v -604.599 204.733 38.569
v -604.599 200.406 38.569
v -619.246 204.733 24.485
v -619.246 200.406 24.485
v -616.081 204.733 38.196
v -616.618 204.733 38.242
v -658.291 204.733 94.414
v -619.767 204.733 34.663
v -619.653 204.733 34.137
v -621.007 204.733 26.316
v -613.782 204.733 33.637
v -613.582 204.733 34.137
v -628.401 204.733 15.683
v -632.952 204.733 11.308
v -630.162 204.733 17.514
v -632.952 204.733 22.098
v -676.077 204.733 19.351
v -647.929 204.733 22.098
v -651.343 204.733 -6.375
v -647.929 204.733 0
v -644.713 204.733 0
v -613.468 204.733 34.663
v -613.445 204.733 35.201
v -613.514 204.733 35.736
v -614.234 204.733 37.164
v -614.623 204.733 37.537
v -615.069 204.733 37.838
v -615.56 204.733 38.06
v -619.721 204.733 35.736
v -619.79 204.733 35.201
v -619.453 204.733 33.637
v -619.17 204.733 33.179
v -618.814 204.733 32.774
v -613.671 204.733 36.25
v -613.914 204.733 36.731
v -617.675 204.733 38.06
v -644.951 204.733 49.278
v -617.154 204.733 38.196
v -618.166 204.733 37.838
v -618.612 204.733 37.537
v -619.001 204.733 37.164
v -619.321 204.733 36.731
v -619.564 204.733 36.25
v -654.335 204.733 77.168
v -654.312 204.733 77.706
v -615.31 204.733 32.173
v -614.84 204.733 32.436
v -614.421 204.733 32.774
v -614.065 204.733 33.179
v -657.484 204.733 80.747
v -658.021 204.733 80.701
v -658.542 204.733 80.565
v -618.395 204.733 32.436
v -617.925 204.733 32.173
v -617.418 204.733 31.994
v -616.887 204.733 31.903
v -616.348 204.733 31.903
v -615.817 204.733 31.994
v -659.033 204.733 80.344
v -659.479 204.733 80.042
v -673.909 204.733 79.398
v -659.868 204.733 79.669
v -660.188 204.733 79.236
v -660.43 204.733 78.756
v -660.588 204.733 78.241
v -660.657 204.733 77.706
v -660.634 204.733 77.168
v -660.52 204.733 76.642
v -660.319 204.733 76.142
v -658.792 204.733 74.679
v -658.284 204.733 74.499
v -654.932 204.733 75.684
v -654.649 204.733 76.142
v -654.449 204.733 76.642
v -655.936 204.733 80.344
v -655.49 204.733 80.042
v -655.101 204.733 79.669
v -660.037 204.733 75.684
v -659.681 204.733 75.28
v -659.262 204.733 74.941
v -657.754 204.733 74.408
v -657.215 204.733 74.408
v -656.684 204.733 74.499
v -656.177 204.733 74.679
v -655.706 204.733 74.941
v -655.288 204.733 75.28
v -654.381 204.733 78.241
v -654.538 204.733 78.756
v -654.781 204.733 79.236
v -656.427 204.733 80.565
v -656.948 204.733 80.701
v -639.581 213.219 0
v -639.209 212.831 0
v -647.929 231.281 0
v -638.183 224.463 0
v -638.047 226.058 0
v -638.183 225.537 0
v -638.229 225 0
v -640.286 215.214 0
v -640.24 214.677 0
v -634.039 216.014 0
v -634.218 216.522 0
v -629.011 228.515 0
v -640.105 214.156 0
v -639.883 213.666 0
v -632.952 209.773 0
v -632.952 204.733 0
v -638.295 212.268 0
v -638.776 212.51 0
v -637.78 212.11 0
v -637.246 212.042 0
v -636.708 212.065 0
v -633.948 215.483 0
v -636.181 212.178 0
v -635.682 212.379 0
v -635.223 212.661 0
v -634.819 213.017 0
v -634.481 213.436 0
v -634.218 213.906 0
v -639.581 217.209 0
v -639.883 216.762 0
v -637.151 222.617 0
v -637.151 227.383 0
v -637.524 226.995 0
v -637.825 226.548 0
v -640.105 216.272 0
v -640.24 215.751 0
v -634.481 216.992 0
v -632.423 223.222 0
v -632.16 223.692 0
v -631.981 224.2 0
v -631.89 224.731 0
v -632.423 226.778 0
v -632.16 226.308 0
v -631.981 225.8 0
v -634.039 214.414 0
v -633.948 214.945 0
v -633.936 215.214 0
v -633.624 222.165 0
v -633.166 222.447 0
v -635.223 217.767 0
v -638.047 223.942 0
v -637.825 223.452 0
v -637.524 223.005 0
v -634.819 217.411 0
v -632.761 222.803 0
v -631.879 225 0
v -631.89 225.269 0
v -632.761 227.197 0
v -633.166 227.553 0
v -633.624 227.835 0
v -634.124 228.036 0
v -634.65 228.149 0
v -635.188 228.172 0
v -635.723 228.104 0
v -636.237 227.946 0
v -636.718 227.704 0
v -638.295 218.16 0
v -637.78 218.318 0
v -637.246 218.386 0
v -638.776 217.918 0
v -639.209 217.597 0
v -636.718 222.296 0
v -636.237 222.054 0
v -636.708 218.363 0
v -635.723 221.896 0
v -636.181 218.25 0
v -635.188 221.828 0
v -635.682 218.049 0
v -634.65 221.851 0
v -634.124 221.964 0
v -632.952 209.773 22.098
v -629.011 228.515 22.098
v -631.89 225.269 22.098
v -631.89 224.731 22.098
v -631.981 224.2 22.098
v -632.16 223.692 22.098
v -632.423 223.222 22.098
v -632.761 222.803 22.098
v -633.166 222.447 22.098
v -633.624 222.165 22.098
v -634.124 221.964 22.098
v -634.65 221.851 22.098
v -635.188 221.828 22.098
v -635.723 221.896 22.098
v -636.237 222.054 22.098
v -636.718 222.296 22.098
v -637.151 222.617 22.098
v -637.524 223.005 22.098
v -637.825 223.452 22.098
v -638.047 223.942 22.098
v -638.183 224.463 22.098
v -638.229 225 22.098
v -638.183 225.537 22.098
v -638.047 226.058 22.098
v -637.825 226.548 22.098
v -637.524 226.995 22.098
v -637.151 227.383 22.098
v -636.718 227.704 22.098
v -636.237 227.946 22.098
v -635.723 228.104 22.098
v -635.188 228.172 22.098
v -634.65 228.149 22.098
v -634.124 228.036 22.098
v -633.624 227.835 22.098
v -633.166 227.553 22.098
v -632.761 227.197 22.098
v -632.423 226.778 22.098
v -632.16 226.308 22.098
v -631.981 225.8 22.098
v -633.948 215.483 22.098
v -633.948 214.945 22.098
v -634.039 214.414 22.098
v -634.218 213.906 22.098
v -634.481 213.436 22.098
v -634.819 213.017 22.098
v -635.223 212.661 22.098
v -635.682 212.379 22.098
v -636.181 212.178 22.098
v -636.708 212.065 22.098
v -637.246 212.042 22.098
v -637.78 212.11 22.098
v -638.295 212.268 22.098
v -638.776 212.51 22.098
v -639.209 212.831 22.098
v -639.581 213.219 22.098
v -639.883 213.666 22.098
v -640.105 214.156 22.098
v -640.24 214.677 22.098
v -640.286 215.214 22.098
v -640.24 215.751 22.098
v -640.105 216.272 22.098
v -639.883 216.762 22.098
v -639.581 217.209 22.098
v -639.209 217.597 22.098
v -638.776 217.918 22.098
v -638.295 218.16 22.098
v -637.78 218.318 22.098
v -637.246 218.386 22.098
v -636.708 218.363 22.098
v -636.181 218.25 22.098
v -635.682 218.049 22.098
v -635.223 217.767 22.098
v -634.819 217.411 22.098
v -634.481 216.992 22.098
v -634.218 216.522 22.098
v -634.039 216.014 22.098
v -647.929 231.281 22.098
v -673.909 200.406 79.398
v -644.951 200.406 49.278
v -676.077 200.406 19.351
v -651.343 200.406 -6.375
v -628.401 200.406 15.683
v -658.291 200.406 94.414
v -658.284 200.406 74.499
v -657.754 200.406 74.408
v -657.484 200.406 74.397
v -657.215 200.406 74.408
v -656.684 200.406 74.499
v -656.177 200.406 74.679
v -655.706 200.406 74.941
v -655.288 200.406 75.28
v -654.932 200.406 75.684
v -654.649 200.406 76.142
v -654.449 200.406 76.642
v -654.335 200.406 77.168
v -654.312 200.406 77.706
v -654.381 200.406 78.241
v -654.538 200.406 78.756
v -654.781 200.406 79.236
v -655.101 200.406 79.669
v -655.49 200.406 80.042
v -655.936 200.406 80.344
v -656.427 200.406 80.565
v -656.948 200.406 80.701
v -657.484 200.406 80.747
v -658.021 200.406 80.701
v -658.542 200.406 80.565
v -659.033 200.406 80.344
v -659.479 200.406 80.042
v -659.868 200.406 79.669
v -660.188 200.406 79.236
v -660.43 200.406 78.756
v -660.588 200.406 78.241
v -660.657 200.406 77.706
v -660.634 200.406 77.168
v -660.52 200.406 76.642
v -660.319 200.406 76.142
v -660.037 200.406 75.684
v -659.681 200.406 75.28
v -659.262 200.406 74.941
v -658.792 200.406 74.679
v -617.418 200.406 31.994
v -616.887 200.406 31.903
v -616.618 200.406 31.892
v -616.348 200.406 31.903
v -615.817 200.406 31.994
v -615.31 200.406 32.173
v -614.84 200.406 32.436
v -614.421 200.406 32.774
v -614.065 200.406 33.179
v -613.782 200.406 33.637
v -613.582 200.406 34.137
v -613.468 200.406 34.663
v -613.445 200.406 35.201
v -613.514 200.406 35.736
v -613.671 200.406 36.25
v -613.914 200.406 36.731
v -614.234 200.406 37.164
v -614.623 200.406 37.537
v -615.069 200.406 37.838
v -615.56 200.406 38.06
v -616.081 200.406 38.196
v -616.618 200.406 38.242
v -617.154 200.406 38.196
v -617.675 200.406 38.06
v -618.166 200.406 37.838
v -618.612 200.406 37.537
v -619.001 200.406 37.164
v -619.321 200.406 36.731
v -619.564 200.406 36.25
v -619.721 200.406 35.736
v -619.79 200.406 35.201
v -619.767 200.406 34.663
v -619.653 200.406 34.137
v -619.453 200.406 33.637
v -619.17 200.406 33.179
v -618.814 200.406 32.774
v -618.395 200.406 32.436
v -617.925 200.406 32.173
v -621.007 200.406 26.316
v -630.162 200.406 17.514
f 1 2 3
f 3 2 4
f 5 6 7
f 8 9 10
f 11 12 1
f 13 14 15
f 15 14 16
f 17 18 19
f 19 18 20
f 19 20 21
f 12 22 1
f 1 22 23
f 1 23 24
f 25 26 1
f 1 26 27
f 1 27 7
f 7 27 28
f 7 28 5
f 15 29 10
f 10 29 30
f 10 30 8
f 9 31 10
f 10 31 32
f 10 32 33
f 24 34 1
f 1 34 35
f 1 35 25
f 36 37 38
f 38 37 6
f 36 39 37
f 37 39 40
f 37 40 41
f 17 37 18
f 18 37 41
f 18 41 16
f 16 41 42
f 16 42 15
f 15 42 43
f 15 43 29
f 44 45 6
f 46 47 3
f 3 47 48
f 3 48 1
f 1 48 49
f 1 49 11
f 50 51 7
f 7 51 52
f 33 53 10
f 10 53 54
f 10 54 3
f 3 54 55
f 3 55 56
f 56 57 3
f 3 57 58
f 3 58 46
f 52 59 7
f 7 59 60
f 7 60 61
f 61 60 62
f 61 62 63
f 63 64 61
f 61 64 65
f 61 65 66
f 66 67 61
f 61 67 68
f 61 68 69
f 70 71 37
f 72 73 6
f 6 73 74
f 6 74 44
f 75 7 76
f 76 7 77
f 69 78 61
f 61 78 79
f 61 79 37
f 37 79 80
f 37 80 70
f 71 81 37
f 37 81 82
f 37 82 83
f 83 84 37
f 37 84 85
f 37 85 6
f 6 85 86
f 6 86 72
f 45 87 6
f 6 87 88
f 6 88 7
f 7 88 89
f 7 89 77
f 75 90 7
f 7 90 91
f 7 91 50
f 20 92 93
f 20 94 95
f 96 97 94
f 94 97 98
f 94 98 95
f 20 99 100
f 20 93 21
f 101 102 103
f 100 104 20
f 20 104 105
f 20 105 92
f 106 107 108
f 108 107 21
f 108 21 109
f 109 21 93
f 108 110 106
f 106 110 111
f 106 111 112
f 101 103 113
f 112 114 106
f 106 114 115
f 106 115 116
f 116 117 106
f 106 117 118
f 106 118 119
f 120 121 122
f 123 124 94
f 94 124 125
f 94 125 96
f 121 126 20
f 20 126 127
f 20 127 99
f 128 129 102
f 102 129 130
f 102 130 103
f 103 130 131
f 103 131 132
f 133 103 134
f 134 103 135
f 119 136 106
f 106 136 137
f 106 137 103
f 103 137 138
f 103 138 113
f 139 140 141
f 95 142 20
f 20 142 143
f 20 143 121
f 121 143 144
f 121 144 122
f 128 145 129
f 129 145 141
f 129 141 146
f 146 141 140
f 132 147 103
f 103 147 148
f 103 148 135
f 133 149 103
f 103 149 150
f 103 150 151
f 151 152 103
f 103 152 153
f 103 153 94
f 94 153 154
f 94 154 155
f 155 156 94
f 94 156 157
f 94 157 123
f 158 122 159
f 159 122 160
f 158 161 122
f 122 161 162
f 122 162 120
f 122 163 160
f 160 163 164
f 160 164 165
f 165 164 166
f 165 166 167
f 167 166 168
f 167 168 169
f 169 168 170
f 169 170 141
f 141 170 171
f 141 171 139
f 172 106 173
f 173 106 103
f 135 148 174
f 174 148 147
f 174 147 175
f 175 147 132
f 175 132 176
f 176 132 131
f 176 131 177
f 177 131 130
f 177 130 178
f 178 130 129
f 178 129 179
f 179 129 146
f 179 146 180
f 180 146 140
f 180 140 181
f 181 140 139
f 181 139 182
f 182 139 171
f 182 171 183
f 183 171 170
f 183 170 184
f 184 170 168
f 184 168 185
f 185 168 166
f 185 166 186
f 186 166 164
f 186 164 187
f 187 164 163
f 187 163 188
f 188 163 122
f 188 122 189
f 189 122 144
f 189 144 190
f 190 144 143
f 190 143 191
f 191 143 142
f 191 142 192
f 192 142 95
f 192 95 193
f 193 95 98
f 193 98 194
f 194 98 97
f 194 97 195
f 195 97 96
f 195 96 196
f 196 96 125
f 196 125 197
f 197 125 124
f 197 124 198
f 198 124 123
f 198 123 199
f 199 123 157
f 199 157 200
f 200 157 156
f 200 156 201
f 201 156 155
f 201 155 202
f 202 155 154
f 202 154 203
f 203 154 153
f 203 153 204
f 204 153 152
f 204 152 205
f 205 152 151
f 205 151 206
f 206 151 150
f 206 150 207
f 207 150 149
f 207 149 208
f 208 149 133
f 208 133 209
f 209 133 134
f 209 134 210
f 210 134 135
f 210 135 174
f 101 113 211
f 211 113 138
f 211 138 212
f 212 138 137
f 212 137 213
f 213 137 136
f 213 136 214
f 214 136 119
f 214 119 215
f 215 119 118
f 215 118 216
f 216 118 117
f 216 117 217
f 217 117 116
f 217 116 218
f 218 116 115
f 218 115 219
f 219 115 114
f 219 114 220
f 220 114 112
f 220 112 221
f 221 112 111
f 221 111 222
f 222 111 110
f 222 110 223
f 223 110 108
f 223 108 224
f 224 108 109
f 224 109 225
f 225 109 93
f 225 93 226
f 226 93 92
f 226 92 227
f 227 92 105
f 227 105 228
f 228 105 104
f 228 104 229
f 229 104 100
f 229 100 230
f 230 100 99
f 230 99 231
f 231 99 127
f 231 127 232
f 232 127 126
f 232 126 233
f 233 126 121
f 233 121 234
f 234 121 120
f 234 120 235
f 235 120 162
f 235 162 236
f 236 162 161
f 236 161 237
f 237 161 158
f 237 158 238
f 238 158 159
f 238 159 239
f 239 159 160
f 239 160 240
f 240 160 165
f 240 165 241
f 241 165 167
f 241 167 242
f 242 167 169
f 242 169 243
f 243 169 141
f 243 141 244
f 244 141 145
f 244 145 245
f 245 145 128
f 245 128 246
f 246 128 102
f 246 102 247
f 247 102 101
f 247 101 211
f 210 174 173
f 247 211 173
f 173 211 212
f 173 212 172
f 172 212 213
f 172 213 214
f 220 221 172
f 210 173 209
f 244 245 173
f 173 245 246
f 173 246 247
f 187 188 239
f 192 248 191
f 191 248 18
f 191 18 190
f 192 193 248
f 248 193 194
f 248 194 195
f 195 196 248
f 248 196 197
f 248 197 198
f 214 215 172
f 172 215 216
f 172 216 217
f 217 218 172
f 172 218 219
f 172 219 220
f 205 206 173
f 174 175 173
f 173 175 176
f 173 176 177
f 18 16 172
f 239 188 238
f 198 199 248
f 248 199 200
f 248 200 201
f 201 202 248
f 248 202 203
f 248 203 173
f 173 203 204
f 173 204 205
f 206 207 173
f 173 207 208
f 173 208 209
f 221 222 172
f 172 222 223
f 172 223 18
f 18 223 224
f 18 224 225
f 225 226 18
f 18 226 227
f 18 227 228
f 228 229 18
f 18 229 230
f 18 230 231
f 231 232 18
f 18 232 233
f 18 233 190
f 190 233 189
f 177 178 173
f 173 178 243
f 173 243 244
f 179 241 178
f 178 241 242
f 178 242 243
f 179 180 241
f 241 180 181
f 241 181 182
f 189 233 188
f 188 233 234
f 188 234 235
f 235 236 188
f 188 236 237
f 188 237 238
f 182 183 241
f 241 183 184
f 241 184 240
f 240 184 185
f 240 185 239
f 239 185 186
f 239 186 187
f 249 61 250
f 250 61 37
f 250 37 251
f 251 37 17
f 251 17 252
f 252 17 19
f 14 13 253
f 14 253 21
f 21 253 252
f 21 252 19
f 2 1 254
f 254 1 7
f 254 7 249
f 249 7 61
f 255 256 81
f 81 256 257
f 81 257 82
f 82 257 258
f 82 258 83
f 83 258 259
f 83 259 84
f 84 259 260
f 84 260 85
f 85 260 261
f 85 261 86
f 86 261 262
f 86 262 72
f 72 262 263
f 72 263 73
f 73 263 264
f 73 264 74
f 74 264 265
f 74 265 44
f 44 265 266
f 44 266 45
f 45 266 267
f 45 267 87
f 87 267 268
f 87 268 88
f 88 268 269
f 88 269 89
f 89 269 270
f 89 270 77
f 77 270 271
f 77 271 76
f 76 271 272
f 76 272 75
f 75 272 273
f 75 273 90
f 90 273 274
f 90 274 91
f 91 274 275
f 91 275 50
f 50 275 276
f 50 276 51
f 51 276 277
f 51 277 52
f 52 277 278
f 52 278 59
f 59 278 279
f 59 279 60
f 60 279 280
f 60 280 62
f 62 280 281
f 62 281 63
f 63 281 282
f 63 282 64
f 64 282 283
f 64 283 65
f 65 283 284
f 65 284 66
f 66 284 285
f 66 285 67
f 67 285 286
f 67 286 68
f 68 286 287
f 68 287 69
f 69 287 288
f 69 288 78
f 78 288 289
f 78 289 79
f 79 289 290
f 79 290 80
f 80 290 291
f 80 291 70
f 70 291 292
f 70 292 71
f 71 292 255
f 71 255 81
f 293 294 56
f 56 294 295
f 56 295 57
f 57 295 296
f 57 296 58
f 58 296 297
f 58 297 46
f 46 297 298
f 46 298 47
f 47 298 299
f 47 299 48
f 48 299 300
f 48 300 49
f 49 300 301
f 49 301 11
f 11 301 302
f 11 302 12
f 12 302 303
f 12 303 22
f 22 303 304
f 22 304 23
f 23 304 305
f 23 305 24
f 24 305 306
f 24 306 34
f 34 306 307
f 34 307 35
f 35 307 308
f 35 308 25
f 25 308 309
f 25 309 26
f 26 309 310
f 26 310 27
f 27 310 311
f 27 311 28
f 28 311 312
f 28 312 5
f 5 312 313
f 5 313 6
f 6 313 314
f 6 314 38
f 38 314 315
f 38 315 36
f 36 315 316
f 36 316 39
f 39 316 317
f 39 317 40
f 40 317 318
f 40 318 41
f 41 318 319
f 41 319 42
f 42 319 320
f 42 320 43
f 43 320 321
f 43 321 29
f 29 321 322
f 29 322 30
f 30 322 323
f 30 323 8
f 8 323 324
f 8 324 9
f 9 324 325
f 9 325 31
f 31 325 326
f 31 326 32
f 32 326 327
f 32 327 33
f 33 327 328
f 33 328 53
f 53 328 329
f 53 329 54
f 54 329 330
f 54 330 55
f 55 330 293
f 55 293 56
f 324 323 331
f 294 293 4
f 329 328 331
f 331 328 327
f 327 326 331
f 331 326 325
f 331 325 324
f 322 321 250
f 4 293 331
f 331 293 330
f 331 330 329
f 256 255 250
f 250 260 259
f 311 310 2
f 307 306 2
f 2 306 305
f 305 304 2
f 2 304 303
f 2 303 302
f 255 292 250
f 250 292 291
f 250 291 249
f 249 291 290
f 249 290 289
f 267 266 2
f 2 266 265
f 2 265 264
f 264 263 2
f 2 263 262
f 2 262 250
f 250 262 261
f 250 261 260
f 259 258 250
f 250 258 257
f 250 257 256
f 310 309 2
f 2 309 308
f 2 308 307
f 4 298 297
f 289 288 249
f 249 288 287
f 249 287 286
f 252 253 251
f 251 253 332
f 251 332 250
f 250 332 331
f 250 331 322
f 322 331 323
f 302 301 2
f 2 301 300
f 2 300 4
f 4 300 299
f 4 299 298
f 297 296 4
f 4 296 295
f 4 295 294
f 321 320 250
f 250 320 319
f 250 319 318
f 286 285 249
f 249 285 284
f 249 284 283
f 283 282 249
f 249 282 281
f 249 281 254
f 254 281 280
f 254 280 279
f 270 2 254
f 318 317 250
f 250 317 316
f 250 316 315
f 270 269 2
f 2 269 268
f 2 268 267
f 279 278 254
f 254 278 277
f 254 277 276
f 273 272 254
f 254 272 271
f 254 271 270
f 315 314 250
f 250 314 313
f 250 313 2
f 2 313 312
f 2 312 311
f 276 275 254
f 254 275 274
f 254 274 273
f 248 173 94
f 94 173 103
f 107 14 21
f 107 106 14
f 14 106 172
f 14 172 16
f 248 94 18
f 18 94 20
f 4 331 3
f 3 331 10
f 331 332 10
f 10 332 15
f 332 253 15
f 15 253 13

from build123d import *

# Parameters (mm, degrees)
SKETCH1_R            = 3.175
BOSS_EXTRUDE1_DEPTH  = 22.098
SKETCH2_W            = 6.364573253
SKETCH2_H            = 22.098
BOSS_EXTRUDE2_DEPTH  = 8.89
SKETCH12_R           = 3.175
BOSS_EXTRUDE6_DEPTH  = 4.326760245
BOSS_EXTRUDE12_DEPTH = 22.098
CUT_EXTRUDE1_DEPTH   = 35.052
BOSS_EXTRUDE13_DEPTH = 22.098
BOSS_EXTRUDE14_REACH = 685.189
SKETCH22_W           = 11.177544577
SKETCH22_H           = 22.098
CUT_EXTRUDE3_DEPTH   = 39.878
CUT_EXTRUDE4_DEPTH   = 684.154025117


with BuildPart() as part:
    # Sketch1 → Boss-Extrude1 (new body)
    with BuildSketch(Plane.XY):
        Polygon((-629.011320926, 228.514758378), (-646.417262265, 232.174381811), (-650.357758597, 213.432549691), (-632.951817258, 209.772926258), align=None)
        with Locations(Location((-635.053635704, 225, 0), (0, 0, 180))):
            Circle(SKETCH1_R, mode=Mode.SUBTRACT)
        with Locations(Location((-637.11116423, 215.213960129, 0), (0, 0, 180))):
            Circle(SKETCH1_R, mode=Mode.SUBTRACT)
    extrude(amount=BOSS_EXTRUDE1_DEPTH)

    # Sketch2 → Boss-Extrude2 (add)
    with BuildSketch(Plane(origin=(15.442364745, 73.44714554, 0), x_dir=(0.9786039871389689, -0.20575285260650125, 0), z_dir=(-0.20575285260650128, -0.978603987138969, 0))):
        with Locations((-677.174764942, 11.049)):
            Rectangle(SKETCH2_W, SKETCH2_H)
    extrude(amount=BOSS_EXTRUDE2_DEPTH)

    # Sketch12 → Boss-Extrude6 (add)
    with BuildSketch(Plane(origin=(0, 204.732760245, 0), x_dir=(1, 0, 0), z_dir=(0, 1, 0))):
        Polygon((-673.909297528, -79.397690297), (-658.291353122, -94.413693096), (-604.598546014, -38.568519939), (-651.343308245, 6.374621247), (-676.077405689, -19.350983895), (-644.950587864, -49.278122283), align=None)
        with Locations(Location((-657.484410814, -77.571736143, 0), (0, 0, 270))):
            Circle(SKETCH12_R, mode=Mode.SUBTRACT)
        with Locations(Location((-616.617520158, -35.066627769, 0), (0, 0, 270))):
            Circle(SKETCH12_R, mode=Mode.SUBTRACT)
    extrude(amount=-BOSS_EXTRUDE6_DEPTH)

    # Sketch19 → Boss-Extrude12 (add)
    with BuildSketch(Plane.XY.offset(22.098)):
        Polygon((-646.417262265, 232.174381811), (-654.037262265, 232.174381811), (-654.037262265, 204.732760245), (-652.186901457, 204.732760245), align=None)
    extrude(amount=-BOSS_EXTRUDE12_DEPTH)

    # Sketch20 → Cut-Extrude1 (cut)
    with BuildSketch(Plane(origin=(0, 0, 0), x_dir=(-1, 0, 0), z_dir=(0, 0, -1))):
        Polygon((629.011320926, 228.514758378), (654.037262265, 232.174381811), (646.417262265, 232.174381811), align=None)
    extrude(amount=-CUT_EXTRUDE1_DEPTH, mode=Mode.SUBTRACT)

    # Sketch21 → Boss-Extrude13 (add)
    with BuildSketch(Plane(origin=(0, 0, 0), x_dir=(-1, 0, 0), z_dir=(0, 0, -1))):
        Polygon((644.129361835, 212.123020588), (644.129361835, 204.732760245), (645.683174376, 204.732760245), align=None)
    extrude(amount=-BOSS_EXTRUDE13_DEPTH)

    # Sketch22 → Boss-Extrude14 (add, up to next)
    with BuildSketch(Plane(origin=(0, 204.732760245, 0), x_dir=(1, 0, 0), z_dir=(0, 1, 0)), mode=Mode.PRIVATE) as boss_extrude14_sk1:
        with Locations((-638.540589547, -11.049)):
            Rectangle(SKETCH22_W, SKETCH22_H)
    boss_extrude14_tool1 = extrude(boss_extrude14_sk1.sketch, amount=BOSS_EXTRUDE14_REACH, mode=Mode.PRIVATE) - part.part
    add(boss_extrude14_tool1.solids().sort_by_distance((-638.54059, 204.73276, 11.049))[0])

    # Sketch23 → Cut-Extrude3 (cut)
    with BuildSketch(Plane.XY.offset(22.098)):
        Polygon((-647.929135227, 231.281170861), (-647.929135227, 204.732760245), (-654.037262265, 204.732760245), (-654.037262265, 232.174381811), align=None)
    extrude(amount=-CUT_EXTRUDE3_DEPTH, mode=Mode.SUBTRACT)

    # Sketch24 → Cut-Extrude4 (cut, through all)
    with BuildSketch(Plane(origin=(0, 204.732760245, 0), x_dir=(1, 0, 0), z_dir=(0, 1, 0))):
        Polygon((-619.246460285, -24.485160698), (-621.00688019, -26.316149982), (-630.161826609, -17.514050456), (-628.401406704, -15.683061172), align=None)
    extrude(amount=-CUT_EXTRUDE4_DEPTH, mode=Mode.SUBTRACT)


solid = part.part
